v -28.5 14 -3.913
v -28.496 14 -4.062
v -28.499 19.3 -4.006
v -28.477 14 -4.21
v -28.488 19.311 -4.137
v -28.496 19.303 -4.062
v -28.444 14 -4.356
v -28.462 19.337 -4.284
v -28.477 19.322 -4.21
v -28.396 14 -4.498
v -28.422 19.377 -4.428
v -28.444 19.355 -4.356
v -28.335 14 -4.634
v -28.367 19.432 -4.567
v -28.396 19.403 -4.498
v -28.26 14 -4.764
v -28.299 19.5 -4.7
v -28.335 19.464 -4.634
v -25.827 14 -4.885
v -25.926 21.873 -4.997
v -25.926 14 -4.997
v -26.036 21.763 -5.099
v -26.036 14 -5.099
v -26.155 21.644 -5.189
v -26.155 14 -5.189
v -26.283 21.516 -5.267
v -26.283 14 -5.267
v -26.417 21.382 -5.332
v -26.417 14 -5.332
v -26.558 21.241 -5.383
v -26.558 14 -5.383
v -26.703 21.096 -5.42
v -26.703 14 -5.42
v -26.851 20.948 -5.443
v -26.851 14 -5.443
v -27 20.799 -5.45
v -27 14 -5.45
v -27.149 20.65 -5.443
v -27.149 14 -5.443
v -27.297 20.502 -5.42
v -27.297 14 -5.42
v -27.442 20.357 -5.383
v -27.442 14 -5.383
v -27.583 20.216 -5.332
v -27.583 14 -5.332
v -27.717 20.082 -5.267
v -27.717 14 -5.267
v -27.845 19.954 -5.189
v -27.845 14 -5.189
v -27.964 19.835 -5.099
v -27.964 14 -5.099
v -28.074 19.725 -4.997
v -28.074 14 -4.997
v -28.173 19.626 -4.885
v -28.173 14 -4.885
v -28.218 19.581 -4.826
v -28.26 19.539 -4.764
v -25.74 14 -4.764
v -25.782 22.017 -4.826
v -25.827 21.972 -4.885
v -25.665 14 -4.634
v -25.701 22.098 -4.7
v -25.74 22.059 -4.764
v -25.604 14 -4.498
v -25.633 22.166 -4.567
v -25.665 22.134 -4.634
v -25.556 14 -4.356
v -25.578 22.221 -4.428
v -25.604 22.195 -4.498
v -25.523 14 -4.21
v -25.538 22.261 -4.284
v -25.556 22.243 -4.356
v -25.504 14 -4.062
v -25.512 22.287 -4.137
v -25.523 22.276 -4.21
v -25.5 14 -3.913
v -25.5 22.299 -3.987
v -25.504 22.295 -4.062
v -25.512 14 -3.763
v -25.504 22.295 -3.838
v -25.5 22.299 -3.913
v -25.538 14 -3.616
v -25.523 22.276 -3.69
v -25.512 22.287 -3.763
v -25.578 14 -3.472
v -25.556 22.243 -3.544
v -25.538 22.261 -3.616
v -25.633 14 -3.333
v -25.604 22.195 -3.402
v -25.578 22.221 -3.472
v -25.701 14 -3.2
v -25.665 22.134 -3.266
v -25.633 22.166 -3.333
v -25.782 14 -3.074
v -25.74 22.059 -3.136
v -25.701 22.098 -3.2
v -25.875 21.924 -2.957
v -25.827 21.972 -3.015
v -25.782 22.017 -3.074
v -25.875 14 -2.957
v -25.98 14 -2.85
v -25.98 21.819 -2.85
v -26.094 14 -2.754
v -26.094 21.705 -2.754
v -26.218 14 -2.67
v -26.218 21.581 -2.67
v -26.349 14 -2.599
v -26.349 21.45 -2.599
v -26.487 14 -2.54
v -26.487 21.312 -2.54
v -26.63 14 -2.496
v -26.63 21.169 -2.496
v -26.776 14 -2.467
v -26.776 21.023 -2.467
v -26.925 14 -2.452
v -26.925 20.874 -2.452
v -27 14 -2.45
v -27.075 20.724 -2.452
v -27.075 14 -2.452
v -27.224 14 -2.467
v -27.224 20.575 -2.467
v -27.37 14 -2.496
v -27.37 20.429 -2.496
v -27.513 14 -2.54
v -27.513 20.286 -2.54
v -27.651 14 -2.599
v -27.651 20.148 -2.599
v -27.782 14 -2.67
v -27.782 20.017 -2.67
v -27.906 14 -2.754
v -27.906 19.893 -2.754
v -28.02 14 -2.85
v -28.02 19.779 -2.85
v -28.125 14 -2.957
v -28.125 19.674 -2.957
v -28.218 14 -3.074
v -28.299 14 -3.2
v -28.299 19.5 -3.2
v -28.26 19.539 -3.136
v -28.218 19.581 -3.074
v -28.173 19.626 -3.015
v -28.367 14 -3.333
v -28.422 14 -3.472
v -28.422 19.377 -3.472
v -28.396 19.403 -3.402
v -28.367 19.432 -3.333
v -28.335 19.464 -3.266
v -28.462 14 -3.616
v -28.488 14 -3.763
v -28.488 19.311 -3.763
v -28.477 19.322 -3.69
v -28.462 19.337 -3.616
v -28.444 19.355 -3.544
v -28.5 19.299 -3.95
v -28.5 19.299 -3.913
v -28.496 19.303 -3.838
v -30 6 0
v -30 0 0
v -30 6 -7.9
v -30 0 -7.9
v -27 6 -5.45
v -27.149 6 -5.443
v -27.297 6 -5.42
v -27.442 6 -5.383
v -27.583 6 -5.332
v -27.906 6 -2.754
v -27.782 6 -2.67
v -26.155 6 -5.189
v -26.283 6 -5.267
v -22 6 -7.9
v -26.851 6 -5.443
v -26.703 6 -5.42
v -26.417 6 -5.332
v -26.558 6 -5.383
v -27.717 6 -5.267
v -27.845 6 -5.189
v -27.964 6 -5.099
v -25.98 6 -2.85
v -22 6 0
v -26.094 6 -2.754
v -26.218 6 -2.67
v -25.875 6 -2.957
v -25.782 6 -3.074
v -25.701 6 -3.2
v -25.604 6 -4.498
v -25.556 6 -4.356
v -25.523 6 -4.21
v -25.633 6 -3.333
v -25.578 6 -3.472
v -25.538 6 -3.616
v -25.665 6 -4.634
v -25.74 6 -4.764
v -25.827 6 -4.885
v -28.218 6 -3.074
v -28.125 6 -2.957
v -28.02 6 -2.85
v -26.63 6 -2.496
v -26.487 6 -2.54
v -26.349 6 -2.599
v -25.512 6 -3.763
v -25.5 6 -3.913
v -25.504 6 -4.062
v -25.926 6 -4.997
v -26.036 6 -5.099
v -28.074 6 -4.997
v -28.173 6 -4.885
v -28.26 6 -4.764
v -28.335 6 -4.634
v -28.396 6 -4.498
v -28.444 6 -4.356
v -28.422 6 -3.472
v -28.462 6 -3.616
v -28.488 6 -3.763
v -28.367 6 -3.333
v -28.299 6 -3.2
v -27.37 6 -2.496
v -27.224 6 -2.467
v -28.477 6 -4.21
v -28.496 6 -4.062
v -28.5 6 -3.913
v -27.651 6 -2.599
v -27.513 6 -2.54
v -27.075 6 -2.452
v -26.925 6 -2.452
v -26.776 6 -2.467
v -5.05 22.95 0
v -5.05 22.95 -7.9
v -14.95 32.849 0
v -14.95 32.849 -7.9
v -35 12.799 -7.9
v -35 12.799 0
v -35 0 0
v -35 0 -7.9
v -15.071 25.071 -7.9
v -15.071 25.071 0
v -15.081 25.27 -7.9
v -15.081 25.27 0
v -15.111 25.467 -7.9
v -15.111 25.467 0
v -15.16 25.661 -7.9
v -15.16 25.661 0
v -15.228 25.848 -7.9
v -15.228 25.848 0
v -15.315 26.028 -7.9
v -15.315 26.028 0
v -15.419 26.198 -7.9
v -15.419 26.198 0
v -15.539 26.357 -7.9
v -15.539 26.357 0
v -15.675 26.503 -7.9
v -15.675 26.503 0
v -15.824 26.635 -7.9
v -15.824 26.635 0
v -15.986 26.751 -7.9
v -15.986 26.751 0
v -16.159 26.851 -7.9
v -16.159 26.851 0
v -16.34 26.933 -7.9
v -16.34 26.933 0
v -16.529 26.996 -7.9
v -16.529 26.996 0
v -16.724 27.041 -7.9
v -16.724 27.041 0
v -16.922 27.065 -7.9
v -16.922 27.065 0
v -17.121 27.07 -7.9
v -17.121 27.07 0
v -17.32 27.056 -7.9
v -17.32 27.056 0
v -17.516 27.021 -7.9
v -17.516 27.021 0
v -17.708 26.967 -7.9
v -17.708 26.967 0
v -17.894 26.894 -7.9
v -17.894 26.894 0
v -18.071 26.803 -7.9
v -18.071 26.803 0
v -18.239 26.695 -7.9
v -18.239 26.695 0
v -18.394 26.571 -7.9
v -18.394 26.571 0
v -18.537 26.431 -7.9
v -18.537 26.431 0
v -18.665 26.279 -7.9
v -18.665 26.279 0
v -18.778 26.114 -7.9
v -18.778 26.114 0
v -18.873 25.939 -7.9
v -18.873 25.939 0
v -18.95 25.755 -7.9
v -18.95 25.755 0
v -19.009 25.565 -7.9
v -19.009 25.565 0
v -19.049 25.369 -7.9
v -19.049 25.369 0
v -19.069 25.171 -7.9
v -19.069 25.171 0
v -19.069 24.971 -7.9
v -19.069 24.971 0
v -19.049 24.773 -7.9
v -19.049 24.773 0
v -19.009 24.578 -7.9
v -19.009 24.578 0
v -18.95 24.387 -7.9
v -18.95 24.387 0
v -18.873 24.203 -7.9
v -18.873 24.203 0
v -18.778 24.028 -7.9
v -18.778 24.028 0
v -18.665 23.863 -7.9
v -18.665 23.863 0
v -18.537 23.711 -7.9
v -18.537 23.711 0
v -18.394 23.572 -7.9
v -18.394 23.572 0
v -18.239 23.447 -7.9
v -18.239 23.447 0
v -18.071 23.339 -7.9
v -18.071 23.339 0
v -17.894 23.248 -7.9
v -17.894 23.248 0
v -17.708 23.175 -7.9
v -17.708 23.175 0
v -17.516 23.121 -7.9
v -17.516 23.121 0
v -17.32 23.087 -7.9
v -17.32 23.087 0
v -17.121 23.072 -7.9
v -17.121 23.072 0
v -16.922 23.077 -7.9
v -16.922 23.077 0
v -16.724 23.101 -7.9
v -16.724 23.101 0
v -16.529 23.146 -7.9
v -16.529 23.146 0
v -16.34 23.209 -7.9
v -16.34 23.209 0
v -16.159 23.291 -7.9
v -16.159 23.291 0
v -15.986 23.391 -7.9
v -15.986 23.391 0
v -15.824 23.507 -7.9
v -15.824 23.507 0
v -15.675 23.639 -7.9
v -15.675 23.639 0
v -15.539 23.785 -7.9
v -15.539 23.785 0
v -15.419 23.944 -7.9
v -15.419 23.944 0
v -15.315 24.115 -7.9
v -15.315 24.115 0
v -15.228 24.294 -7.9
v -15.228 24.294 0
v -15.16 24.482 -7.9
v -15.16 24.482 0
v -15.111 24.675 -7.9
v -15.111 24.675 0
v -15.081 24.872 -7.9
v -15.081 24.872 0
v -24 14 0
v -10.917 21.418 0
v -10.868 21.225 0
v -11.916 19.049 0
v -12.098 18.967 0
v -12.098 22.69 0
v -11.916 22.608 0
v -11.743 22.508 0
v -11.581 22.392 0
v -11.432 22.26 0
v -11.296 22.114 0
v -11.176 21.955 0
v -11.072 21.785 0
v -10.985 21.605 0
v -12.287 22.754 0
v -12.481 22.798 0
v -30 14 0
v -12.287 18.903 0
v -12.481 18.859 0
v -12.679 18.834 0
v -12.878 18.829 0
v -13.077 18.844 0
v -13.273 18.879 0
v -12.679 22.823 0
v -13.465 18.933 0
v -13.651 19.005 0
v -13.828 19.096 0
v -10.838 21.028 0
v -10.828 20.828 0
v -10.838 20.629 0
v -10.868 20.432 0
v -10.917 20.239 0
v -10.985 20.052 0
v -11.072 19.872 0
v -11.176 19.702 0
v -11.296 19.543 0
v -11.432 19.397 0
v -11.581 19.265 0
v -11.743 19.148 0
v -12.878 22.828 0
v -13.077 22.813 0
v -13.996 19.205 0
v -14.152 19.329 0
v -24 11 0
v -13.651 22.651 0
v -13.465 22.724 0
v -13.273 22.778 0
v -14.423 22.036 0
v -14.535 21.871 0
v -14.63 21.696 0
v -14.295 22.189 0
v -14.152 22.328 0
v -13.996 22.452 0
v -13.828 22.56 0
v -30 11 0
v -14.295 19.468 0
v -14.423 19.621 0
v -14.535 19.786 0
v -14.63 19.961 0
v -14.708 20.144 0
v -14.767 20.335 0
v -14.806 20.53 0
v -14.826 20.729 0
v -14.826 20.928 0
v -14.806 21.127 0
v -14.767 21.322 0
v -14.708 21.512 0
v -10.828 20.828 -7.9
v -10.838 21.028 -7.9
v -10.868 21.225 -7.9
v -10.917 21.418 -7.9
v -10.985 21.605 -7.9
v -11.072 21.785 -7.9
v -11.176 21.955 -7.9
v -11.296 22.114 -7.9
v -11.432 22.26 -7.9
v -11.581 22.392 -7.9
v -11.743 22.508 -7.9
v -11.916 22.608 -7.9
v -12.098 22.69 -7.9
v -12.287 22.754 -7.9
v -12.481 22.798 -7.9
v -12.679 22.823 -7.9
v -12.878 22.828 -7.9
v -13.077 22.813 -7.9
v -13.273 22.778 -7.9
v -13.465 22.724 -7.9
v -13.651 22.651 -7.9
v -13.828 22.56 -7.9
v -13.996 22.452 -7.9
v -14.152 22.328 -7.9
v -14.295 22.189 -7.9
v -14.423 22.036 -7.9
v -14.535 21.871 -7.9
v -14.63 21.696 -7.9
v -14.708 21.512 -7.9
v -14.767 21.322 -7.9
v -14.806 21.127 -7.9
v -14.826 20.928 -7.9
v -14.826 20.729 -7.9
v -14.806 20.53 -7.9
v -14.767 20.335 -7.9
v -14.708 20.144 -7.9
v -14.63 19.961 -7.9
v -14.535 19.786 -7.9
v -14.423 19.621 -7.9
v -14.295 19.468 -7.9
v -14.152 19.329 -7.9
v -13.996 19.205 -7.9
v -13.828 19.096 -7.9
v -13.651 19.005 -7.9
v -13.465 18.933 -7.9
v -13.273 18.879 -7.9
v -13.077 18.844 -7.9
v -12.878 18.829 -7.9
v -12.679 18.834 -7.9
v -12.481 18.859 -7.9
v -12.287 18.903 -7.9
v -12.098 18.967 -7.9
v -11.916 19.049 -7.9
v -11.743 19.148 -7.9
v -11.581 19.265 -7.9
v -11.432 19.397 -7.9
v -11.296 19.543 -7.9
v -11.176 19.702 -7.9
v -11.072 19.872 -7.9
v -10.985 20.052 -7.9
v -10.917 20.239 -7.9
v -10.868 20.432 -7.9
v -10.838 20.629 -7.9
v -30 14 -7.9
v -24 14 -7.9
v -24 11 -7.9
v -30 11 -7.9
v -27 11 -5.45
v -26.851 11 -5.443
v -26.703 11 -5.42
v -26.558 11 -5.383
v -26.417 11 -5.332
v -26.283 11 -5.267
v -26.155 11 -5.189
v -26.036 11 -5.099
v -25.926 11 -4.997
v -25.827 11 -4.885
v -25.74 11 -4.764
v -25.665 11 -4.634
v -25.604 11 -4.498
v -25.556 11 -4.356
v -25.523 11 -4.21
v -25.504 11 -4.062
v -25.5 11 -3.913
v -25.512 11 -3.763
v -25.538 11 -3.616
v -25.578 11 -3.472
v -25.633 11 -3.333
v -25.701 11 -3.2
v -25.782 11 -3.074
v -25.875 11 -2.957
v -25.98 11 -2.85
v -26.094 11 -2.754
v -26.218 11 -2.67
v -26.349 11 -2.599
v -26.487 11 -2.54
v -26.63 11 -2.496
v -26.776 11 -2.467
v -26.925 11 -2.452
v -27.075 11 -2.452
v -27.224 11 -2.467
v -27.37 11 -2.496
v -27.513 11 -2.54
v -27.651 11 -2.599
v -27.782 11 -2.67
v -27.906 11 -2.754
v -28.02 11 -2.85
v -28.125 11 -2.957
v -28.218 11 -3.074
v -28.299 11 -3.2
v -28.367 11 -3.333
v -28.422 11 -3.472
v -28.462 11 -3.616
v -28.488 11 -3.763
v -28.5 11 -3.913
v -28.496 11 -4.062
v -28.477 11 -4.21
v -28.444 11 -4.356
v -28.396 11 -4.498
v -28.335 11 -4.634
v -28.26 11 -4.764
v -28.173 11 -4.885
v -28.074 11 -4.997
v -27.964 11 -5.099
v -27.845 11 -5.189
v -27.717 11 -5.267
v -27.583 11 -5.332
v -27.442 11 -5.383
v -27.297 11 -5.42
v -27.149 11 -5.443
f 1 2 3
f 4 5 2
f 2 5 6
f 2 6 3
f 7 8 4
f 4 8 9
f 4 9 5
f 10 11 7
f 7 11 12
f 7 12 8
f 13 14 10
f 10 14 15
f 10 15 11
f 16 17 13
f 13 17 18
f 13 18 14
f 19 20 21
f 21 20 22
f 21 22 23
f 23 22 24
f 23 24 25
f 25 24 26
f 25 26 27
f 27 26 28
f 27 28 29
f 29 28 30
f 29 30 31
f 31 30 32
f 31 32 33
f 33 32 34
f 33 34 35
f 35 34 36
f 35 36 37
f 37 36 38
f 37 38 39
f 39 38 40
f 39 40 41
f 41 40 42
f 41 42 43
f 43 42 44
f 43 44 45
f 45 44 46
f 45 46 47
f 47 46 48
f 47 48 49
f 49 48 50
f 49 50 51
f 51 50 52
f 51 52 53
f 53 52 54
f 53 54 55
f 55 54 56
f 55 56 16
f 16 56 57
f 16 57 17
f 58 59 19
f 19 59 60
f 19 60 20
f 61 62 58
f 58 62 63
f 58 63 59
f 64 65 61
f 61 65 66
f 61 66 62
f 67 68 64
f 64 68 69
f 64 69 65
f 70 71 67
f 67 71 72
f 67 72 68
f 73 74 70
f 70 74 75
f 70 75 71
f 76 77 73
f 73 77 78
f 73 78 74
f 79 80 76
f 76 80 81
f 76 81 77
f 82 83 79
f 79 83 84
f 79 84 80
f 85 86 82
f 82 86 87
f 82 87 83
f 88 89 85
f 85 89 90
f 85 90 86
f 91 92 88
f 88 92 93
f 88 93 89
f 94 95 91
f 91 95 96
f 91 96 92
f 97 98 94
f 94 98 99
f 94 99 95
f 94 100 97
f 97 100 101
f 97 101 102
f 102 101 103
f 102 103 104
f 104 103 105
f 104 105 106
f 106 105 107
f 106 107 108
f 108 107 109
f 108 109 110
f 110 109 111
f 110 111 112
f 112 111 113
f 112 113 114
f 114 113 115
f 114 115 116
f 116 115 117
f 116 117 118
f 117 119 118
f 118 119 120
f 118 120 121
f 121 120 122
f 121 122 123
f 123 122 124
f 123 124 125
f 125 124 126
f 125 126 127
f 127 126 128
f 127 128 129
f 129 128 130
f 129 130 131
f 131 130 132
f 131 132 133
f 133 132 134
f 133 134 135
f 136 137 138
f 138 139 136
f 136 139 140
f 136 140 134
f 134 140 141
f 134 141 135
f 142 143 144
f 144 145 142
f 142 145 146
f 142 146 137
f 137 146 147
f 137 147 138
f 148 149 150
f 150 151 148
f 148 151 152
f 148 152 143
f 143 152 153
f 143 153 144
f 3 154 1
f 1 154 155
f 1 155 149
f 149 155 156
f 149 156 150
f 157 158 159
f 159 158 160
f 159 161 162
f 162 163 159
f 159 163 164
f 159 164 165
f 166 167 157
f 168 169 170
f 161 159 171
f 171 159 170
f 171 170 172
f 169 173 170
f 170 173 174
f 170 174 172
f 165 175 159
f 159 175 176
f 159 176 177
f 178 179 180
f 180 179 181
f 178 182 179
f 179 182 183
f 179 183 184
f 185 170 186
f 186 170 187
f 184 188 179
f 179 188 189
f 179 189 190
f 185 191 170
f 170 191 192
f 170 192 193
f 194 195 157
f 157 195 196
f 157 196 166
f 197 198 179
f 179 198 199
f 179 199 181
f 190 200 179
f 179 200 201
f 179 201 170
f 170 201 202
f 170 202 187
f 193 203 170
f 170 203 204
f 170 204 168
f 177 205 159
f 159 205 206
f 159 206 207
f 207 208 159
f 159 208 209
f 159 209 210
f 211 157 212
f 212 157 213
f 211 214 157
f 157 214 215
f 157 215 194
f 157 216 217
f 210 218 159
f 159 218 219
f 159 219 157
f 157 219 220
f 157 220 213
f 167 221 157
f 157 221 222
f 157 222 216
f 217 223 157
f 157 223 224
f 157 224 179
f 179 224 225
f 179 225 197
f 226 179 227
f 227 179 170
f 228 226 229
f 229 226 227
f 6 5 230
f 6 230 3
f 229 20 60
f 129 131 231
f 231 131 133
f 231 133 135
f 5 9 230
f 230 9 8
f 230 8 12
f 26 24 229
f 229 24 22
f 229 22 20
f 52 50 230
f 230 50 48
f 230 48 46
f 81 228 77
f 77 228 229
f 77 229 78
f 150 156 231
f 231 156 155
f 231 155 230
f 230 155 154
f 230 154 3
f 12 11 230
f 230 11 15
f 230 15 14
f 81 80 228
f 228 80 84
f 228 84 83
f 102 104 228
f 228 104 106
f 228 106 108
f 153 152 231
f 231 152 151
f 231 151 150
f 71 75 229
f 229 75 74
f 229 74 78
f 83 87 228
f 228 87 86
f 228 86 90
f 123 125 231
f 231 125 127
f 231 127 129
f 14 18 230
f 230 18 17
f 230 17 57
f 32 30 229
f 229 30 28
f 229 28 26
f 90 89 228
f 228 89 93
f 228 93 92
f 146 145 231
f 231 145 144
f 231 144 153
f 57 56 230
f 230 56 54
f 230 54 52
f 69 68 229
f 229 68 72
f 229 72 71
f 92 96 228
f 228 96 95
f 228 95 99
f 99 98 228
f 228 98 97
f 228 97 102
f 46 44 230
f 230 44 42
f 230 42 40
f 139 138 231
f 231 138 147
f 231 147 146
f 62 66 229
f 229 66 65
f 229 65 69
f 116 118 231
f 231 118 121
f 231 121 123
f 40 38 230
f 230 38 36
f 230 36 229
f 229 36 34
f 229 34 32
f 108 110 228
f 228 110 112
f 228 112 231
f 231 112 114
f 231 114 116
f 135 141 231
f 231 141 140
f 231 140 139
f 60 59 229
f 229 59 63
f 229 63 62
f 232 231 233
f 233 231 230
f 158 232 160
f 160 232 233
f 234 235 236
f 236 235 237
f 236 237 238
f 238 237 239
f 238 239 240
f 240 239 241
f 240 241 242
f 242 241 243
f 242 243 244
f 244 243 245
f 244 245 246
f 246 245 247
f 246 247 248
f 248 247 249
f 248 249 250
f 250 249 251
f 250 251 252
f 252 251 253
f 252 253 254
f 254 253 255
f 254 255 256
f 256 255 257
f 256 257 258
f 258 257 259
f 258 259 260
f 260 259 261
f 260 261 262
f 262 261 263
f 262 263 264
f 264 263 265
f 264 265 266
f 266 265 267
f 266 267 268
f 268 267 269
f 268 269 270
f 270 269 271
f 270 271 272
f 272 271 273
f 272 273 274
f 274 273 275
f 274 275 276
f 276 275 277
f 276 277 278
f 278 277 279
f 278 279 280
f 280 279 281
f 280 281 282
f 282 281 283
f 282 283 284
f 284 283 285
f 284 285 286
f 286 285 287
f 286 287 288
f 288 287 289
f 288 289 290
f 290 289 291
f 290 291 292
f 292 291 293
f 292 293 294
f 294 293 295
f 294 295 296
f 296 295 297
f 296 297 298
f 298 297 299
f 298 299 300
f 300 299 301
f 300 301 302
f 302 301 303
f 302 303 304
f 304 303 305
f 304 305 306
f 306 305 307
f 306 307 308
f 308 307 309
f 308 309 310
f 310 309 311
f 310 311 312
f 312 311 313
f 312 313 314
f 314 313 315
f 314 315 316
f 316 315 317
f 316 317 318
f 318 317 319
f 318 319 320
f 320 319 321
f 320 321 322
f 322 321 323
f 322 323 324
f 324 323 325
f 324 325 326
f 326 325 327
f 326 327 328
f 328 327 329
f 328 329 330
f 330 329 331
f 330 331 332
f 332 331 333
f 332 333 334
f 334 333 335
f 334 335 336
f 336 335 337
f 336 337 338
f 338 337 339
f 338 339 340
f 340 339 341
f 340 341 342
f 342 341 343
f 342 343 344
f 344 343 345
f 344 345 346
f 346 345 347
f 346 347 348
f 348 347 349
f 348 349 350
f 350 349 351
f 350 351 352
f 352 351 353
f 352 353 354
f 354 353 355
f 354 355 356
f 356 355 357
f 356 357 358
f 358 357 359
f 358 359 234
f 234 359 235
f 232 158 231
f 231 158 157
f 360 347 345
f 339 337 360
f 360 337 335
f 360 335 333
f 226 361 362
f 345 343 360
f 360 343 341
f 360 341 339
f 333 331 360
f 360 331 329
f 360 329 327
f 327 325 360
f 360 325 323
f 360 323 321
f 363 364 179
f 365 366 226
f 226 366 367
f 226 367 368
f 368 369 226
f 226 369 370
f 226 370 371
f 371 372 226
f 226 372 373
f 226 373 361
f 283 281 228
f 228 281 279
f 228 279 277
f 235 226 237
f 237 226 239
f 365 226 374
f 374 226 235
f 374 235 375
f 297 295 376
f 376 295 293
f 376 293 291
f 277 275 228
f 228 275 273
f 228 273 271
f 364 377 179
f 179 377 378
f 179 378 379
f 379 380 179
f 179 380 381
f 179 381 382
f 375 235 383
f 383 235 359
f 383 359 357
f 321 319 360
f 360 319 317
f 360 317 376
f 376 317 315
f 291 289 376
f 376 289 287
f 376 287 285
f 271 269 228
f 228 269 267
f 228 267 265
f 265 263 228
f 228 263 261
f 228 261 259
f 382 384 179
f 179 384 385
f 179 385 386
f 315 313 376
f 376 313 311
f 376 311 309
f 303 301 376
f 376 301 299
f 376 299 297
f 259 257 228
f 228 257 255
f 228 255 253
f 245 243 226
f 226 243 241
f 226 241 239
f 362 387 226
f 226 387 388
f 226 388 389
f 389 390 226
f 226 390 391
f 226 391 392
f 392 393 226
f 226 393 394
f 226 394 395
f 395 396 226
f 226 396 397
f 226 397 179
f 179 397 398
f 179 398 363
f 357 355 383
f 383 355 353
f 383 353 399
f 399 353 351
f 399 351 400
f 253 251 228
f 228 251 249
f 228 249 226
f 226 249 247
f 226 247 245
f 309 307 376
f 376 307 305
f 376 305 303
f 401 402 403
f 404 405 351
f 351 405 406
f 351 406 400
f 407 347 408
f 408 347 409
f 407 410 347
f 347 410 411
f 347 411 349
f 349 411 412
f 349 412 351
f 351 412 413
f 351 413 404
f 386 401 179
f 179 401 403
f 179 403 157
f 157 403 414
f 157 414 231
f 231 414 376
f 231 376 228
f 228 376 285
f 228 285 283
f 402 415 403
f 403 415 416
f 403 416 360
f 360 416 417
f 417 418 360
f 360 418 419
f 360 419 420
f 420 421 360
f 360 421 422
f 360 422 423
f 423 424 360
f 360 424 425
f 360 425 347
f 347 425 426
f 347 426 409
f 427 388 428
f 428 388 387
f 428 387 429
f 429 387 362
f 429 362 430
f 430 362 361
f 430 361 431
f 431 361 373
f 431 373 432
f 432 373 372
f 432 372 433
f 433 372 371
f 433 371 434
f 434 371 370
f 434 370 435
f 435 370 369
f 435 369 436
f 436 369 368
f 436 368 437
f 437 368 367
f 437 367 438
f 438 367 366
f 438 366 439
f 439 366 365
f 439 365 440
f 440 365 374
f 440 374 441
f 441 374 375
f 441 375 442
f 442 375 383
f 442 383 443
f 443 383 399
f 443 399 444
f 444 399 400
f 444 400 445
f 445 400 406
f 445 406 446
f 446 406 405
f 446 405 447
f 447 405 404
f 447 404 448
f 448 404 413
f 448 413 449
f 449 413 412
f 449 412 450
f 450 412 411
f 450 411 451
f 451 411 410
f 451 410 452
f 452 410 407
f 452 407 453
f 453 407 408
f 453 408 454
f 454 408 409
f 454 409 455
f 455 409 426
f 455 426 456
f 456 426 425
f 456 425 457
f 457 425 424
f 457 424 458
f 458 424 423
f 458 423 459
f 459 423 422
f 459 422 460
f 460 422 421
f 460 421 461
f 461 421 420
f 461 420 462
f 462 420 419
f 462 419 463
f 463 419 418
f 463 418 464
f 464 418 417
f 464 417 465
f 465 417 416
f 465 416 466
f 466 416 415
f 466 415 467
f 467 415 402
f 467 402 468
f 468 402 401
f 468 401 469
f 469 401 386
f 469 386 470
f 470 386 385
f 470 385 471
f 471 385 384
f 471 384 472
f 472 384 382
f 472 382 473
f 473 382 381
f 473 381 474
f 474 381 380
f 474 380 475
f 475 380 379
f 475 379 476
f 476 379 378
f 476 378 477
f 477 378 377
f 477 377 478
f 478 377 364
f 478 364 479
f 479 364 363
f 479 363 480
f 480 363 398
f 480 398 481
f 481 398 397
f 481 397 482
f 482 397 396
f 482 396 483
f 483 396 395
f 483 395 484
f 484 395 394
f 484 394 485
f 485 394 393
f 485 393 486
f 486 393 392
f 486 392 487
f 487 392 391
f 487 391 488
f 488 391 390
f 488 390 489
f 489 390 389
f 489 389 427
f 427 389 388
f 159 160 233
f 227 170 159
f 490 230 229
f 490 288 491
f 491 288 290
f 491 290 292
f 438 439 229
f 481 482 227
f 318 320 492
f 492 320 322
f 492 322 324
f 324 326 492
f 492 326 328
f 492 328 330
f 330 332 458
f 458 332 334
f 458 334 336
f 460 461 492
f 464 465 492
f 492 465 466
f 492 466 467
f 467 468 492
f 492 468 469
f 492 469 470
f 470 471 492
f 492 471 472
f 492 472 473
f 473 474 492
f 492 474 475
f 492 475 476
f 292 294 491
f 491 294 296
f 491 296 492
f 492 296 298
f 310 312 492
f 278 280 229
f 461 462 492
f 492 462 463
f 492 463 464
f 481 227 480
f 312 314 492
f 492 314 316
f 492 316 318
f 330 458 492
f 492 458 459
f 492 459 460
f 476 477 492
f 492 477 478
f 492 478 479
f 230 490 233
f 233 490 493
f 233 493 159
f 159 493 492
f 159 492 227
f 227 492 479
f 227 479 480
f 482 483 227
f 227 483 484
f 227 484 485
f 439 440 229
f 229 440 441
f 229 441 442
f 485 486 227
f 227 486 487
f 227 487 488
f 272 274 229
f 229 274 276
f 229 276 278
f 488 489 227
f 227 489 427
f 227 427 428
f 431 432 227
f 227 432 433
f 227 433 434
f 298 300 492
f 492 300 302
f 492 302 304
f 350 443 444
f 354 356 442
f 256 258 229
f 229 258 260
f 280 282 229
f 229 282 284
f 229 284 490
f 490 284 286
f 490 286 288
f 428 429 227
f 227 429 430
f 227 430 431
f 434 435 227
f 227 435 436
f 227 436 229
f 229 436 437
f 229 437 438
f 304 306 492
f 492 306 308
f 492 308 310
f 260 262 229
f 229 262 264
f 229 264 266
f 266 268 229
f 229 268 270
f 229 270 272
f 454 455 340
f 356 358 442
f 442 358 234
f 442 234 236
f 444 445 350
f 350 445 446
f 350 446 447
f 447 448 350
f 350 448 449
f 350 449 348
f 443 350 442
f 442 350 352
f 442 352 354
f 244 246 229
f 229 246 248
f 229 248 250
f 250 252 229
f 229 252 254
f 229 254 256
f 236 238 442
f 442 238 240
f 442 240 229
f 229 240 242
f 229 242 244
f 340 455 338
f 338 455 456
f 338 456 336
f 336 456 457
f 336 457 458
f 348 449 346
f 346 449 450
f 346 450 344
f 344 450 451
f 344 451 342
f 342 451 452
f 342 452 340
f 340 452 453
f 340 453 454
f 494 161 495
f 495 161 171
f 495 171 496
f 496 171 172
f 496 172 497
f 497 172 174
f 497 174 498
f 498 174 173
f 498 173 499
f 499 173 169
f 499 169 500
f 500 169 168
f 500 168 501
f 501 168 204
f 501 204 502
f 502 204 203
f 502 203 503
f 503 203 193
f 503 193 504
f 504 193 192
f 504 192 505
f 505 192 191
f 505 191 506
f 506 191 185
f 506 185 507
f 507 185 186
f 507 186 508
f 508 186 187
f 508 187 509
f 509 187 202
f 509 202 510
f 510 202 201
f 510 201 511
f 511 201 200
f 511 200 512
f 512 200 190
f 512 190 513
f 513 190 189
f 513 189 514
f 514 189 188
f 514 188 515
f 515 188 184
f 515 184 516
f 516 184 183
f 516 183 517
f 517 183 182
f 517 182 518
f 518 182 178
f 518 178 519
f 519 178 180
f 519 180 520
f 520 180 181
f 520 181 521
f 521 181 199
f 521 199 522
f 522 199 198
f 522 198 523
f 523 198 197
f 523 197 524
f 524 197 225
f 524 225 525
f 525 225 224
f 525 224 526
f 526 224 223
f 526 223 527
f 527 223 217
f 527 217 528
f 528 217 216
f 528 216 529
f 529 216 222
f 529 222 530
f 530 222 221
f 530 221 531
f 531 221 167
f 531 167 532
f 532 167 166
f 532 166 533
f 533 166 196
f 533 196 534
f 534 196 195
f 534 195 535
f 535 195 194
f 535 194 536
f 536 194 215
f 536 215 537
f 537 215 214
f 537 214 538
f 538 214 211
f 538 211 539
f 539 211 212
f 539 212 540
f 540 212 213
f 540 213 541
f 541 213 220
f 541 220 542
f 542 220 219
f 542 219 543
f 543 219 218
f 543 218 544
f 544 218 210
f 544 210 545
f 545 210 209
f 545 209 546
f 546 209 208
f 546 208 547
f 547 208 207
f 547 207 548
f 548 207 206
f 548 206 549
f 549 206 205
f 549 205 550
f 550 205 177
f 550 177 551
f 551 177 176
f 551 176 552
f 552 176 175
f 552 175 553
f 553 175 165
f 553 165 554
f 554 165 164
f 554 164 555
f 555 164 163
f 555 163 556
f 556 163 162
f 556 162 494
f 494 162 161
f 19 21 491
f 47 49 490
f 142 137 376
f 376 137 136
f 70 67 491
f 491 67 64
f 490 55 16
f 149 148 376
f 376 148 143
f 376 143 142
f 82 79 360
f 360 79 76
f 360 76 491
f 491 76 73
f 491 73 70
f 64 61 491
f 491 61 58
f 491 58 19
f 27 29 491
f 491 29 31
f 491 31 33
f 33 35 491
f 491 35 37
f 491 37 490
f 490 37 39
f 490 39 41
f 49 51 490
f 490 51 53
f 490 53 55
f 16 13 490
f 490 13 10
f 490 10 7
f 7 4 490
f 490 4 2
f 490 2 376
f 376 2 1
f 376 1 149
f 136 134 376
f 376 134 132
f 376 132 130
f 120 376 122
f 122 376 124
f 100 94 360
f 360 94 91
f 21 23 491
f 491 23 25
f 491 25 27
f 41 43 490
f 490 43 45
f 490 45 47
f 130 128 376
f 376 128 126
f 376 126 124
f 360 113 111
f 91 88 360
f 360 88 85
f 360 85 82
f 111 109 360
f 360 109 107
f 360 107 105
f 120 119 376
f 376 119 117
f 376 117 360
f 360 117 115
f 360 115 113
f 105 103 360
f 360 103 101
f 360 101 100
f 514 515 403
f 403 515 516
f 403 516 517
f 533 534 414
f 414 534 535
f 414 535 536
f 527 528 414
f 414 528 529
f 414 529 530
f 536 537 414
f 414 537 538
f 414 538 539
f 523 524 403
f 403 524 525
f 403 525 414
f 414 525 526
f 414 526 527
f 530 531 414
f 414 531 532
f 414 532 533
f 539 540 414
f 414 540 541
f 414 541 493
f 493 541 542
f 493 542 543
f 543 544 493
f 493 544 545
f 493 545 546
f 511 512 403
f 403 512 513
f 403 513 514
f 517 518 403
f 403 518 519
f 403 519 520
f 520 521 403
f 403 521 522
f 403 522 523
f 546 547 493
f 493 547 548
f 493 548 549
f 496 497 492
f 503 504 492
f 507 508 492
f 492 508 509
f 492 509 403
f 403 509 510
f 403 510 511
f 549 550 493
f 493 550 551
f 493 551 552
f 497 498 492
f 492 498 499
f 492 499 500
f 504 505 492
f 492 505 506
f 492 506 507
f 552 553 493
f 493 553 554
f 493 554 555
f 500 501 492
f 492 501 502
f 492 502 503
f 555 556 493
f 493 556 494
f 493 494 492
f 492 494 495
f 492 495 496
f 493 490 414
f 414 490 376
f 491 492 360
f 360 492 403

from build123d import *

# Parameters (mm, degrees)
SKETCH1_R           = 2
BOSS_EXTRUDE1_DEPTH = 7.9
SKETCH2_R           = 1.5
CUT_EXTRUDE1_DEPTH  = 45.813969002
SKETCH3_W           = 6
SKETCH3_H           = 3
CUT_EXTRUDE2_DEPTH  = 49.646507856


with BuildPart() as part:
    # Sketch1 → Boss-Extrude1 (new body)
    with BuildSketch(Plane.XY):
        Polygon((-30, 0), (-30, 6), (-22, 6), (-5.050252532, 22.949747468), (-14.949747468, 32.849242405), (-35, 12.798989873), (-35, 0), align=None)
        with Locations((-12.828427125, 20.828427125)):
            Circle(SKETCH1_R, mode=Mode.SUBTRACT)
        with Locations((-17.071067812, 25.071067812)):
            Circle(SKETCH1_R, mode=Mode.SUBTRACT)
    extrude(amount=-BOSS_EXTRUDE1_DEPTH)

    # Sketch2 → Cut-Extrude1 (cut, through all)
    with BuildSketch(Plane.XZ.offset(-6)):
        with Locations(Location((-27, -3.95, 0), (0, 0, 270))):
            Circle(SKETCH2_R)
    extrude(amount=-CUT_EXTRUDE1_DEPTH, mode=Mode.SUBTRACT)

    # Sketch3 → Cut-Extrude2 (cut, through all)
    with BuildSketch(Plane.XY):
        with Locations((-27, 12.5)):
            Rectangle(SKETCH3_W, SKETCH3_H)
    extrude(amount=-CUT_EXTRUDE2_DEPTH, mode=Mode.SUBTRACT)


solid = part.part
